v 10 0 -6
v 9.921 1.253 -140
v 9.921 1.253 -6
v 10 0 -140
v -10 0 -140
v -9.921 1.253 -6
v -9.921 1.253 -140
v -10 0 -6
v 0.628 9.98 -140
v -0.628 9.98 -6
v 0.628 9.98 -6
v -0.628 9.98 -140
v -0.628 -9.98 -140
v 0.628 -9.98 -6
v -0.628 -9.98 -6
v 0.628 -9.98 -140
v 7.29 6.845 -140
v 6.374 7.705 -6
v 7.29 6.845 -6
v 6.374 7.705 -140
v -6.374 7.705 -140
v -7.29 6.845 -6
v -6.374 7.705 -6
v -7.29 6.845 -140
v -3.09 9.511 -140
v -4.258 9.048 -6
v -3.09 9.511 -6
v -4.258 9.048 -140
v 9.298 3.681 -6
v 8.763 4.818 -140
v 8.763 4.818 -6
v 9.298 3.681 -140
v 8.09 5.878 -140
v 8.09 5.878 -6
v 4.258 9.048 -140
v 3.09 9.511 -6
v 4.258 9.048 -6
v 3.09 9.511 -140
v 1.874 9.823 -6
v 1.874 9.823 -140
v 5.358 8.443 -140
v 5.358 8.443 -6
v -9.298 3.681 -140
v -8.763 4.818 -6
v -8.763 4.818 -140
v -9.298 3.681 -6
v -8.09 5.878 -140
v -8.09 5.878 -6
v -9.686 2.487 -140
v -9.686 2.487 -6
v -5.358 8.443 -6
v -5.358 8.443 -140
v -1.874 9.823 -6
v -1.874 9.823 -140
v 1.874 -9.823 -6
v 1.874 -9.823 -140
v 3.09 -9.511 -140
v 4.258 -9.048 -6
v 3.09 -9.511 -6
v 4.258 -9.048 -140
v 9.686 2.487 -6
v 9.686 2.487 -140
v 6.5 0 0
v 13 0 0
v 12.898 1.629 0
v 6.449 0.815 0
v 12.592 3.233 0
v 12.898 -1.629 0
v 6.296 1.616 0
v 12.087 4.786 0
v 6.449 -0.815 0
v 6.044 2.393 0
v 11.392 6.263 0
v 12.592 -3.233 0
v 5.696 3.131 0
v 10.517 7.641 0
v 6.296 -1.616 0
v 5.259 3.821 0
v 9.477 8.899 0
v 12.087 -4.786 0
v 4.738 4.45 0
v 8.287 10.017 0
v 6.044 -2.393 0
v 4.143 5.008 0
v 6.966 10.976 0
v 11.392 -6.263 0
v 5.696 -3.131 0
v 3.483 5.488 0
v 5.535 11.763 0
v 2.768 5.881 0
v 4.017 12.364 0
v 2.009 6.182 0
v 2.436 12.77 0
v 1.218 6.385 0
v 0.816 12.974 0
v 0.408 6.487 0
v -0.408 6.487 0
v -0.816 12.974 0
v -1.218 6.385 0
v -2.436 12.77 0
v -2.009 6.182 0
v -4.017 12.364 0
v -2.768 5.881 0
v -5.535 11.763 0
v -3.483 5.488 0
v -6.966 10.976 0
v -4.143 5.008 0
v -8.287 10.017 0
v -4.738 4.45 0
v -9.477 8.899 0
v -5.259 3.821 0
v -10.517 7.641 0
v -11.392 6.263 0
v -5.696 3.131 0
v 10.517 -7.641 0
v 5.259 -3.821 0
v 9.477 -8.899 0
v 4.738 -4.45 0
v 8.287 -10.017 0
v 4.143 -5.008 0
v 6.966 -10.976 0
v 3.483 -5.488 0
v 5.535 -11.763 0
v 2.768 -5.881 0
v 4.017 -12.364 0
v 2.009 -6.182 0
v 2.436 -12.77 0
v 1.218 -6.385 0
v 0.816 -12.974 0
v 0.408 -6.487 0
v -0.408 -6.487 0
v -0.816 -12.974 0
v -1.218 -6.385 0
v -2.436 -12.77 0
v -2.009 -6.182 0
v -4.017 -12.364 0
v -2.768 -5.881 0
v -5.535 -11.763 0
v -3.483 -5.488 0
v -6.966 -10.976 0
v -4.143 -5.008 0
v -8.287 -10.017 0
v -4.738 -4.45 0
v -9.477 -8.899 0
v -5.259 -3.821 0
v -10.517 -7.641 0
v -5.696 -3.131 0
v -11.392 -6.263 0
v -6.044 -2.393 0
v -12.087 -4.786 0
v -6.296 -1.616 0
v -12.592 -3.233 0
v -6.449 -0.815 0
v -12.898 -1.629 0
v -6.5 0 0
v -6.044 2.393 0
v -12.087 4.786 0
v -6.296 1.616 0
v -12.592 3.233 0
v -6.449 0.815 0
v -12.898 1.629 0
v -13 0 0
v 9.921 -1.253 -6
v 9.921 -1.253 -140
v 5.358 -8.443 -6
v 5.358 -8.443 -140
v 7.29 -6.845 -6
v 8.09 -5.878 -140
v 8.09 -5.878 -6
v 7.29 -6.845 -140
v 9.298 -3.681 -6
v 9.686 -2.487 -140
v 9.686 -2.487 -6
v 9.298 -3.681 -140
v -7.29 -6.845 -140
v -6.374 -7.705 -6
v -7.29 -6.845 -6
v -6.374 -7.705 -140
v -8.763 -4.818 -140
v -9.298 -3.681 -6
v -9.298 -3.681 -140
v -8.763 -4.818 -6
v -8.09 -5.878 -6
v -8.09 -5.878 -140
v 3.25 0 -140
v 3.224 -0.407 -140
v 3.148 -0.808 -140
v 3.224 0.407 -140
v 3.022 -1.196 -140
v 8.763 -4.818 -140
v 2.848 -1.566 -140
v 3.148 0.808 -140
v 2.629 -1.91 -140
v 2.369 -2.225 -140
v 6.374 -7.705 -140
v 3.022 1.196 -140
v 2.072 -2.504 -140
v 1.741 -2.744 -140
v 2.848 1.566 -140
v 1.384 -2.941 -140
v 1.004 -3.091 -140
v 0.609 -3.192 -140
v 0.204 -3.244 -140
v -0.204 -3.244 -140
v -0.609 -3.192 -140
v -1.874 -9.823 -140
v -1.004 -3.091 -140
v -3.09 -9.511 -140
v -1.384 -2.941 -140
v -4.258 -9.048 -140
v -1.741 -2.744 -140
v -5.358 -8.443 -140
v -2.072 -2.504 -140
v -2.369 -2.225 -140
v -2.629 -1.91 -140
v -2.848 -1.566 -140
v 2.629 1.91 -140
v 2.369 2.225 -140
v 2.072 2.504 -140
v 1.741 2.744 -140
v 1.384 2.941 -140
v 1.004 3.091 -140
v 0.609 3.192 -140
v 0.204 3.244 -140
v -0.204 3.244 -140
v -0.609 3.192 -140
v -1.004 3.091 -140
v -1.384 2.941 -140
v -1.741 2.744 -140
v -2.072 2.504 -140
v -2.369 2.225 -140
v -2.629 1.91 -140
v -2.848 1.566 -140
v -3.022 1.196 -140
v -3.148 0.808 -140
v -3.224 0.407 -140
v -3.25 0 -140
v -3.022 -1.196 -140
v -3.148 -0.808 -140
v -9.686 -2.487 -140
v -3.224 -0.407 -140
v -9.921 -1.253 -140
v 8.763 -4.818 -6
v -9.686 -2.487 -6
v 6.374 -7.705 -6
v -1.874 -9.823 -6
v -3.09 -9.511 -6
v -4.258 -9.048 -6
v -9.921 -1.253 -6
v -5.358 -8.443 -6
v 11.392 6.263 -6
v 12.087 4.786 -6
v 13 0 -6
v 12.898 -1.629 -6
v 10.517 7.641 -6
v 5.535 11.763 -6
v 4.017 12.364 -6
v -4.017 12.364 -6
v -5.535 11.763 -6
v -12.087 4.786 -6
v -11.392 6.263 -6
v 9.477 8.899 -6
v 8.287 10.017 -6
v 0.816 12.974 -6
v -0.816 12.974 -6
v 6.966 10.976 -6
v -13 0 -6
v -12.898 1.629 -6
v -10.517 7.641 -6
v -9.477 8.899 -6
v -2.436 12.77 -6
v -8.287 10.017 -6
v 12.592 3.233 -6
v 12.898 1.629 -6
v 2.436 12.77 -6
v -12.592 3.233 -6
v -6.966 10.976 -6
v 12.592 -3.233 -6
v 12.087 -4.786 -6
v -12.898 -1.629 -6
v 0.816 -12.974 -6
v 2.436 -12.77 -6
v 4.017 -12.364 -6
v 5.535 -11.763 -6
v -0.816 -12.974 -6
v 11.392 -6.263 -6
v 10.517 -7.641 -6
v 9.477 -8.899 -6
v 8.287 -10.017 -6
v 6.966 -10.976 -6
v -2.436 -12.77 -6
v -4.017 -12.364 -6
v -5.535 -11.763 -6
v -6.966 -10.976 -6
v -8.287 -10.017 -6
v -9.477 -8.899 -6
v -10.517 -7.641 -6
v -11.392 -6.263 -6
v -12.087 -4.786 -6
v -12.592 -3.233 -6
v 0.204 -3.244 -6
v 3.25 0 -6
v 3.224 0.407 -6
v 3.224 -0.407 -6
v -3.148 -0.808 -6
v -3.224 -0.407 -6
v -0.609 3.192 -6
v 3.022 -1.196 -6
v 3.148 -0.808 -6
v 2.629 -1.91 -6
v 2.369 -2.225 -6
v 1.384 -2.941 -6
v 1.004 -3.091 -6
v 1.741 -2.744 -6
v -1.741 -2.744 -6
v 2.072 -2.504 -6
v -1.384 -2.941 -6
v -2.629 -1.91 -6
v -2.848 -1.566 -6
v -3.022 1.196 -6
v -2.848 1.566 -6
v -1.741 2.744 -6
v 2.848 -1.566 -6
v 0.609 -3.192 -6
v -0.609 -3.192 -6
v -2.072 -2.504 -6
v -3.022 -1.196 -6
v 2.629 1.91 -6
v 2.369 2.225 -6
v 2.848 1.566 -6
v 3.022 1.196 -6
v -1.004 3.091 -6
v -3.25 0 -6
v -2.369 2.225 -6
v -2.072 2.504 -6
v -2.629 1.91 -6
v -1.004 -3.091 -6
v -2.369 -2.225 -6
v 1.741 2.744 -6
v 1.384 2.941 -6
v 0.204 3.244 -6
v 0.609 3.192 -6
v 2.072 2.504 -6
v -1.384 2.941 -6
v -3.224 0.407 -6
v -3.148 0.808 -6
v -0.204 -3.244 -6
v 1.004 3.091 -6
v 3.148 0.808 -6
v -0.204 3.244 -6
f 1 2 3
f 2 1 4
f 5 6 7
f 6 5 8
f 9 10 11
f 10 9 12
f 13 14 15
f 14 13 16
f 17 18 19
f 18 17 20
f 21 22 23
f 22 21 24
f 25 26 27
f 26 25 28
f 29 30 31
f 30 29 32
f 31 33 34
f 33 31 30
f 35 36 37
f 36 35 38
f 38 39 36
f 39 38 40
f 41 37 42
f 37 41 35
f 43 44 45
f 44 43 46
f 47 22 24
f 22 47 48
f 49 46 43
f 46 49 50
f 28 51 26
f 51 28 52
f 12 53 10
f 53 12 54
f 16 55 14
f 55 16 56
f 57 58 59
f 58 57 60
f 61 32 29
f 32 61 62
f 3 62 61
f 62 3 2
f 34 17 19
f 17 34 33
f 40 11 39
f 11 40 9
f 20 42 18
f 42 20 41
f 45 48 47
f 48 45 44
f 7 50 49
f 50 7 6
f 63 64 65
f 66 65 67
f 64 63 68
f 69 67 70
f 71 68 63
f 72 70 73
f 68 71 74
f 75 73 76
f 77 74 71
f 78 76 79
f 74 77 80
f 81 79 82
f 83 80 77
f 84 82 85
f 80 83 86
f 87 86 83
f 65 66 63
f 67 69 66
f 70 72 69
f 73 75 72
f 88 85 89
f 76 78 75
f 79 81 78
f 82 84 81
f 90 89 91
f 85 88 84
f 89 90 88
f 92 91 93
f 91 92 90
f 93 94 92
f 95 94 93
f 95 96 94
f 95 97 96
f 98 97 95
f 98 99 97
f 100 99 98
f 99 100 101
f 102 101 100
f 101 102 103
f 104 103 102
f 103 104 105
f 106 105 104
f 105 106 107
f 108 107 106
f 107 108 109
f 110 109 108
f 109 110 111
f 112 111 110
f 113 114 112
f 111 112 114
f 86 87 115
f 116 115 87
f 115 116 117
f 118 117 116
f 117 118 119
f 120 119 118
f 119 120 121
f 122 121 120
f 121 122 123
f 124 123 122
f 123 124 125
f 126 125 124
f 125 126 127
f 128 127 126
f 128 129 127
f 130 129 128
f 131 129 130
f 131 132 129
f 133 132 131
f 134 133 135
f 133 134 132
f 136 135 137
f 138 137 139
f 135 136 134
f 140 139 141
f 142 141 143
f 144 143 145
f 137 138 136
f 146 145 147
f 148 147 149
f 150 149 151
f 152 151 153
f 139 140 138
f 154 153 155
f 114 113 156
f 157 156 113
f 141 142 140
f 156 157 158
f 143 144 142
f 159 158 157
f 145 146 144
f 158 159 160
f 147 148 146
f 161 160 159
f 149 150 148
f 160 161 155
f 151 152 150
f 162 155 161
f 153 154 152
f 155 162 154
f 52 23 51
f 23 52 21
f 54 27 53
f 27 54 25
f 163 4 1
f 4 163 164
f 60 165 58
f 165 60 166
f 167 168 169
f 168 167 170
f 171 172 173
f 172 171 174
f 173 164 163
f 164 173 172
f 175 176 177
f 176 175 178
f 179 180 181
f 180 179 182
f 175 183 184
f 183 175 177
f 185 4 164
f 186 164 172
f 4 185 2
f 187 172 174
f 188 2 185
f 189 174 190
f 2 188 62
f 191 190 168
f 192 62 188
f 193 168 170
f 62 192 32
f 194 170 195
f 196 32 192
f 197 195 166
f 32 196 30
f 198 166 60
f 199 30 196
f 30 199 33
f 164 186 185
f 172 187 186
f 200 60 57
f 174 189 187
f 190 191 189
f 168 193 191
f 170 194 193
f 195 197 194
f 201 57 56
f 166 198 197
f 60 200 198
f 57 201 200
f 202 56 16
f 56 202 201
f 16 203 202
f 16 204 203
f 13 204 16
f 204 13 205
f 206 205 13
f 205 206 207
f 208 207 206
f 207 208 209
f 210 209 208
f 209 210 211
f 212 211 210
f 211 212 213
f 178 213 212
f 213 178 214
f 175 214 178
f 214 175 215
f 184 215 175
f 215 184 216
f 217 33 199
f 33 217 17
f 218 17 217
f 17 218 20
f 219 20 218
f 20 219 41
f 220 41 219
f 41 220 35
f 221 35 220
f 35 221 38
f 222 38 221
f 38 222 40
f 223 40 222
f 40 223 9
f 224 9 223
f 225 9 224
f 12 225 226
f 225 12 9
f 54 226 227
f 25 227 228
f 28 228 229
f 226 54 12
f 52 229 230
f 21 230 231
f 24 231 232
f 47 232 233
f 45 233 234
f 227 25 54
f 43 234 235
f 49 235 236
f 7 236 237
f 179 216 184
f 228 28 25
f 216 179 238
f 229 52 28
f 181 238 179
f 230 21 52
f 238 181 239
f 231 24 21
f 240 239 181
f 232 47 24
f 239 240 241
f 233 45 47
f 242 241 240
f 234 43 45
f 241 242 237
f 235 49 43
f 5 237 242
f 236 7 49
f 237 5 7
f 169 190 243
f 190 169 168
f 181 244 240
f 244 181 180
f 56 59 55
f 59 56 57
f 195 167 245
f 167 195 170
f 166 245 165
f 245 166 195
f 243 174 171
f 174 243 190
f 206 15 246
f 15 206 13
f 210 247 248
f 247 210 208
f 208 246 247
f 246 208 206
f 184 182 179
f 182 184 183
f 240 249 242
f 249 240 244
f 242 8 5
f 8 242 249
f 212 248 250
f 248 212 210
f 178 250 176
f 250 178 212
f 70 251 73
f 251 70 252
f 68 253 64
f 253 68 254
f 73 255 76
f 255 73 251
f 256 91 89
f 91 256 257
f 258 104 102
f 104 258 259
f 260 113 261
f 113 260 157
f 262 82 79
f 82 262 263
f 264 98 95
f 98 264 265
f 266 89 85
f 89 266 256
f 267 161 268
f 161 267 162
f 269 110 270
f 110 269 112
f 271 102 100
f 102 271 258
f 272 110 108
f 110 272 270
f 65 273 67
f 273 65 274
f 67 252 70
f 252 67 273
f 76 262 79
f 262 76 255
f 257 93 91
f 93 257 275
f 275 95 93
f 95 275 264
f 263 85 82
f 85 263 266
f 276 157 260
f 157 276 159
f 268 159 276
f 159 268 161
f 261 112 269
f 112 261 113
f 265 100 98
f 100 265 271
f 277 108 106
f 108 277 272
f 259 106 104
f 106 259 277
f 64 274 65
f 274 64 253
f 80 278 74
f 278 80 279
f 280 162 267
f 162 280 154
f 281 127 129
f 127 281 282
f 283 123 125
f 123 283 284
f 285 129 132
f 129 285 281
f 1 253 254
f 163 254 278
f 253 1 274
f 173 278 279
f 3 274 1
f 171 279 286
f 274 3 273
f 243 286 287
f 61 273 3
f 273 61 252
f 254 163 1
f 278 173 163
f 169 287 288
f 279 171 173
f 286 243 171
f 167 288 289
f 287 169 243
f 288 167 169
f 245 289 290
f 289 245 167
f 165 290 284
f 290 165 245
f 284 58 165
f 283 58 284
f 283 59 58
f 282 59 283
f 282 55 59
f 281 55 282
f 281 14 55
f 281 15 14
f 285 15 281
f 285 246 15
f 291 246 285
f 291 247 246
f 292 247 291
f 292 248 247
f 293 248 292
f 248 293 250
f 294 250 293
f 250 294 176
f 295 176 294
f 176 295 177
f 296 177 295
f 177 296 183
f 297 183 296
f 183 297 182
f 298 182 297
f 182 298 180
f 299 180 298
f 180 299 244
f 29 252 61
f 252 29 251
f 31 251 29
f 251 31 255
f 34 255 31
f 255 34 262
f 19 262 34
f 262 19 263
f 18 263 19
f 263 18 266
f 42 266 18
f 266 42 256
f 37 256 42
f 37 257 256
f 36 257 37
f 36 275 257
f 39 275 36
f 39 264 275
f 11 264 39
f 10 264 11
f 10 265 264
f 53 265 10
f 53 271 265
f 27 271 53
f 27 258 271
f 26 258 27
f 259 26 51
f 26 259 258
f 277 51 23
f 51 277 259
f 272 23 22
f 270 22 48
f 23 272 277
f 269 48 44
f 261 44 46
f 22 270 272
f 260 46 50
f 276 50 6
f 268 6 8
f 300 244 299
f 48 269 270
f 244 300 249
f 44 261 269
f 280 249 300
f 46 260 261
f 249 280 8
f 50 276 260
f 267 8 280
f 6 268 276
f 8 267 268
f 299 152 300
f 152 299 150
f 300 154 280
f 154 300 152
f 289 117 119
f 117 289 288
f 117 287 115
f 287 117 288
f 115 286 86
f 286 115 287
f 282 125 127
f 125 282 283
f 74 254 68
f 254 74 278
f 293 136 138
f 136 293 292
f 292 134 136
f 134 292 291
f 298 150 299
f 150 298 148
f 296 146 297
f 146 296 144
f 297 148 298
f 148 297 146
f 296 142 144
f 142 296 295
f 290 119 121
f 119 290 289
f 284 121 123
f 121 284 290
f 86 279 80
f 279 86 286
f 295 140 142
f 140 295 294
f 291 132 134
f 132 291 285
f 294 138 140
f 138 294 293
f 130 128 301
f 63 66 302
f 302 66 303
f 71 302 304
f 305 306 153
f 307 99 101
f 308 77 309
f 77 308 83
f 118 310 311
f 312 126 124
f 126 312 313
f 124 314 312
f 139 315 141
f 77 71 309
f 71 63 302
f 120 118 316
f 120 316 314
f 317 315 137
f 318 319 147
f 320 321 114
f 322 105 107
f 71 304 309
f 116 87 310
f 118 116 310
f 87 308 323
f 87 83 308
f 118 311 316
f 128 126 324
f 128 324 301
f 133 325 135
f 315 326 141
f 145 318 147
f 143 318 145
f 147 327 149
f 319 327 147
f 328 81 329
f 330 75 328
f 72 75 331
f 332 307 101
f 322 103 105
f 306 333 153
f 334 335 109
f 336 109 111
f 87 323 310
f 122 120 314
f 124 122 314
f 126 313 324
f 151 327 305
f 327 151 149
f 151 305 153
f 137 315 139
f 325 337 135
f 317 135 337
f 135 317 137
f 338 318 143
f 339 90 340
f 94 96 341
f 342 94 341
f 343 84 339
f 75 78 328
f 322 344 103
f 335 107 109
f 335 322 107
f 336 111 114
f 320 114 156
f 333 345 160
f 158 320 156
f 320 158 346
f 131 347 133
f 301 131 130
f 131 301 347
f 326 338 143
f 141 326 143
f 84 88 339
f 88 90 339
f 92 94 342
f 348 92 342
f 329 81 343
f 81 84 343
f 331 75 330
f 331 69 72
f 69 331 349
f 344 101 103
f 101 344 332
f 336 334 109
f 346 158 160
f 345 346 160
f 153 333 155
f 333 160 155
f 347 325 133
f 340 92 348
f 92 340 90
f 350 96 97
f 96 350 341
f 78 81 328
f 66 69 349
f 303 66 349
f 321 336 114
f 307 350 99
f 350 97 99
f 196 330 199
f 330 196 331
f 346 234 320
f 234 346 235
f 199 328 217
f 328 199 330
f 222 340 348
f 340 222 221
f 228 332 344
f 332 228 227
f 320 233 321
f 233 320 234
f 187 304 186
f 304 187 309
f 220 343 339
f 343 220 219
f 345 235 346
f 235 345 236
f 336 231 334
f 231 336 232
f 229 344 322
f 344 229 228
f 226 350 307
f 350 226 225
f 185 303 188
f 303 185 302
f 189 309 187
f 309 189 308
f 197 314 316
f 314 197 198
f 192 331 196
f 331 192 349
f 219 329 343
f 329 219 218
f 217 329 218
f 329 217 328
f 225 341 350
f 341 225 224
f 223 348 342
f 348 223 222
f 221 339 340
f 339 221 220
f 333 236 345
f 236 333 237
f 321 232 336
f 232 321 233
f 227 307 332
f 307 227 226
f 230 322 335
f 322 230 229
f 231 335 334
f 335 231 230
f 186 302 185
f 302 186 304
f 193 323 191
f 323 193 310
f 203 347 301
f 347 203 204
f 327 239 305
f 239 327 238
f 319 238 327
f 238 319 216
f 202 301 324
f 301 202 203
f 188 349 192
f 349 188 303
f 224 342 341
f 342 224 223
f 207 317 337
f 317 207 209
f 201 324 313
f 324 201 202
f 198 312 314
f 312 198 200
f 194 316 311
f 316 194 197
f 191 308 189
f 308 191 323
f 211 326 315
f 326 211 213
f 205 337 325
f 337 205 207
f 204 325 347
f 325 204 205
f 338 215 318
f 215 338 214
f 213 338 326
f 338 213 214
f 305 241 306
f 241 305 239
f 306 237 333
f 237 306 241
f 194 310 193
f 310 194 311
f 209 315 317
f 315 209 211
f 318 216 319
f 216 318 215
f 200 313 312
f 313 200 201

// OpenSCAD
$fn = 50;


difference() {
	union() {
		translate(v = [0, 0, -140.0000000000]) {
			cylinder(h = 140, r = 10.0000000000);
		}
		translate(v = [0, 0, -6.0000000000]) {
			cylinder(h = 6, r = 13.0000000000);
		}
	}
	union() {
		translate(v = [0, 0, 0]) {
			rotate(a = [0, 0, 0]) {
				difference() {
					union() {
						#translate(v = [0, 0, -140.0000000000]) {
							cylinder(h = 140, r = 2.2500000000);
						}
						#translate(v = [0, 0, -6]) {
							cylinder(h = 6, r = 10.0000000000, r1 = 3.2500000000, r2 = 6.5000000000);
						}
						#translate(v = [0, 0, -140.0000000000]) {
							cylinder(h = 140, r = 3.2500000000);
						}
						#translate(v = [0, 0, -140.0000000000]) {
							cylinder(h = 140, r = 2.2500000000);
						}
					}
					union();
				}
			}
		}
	}
}
